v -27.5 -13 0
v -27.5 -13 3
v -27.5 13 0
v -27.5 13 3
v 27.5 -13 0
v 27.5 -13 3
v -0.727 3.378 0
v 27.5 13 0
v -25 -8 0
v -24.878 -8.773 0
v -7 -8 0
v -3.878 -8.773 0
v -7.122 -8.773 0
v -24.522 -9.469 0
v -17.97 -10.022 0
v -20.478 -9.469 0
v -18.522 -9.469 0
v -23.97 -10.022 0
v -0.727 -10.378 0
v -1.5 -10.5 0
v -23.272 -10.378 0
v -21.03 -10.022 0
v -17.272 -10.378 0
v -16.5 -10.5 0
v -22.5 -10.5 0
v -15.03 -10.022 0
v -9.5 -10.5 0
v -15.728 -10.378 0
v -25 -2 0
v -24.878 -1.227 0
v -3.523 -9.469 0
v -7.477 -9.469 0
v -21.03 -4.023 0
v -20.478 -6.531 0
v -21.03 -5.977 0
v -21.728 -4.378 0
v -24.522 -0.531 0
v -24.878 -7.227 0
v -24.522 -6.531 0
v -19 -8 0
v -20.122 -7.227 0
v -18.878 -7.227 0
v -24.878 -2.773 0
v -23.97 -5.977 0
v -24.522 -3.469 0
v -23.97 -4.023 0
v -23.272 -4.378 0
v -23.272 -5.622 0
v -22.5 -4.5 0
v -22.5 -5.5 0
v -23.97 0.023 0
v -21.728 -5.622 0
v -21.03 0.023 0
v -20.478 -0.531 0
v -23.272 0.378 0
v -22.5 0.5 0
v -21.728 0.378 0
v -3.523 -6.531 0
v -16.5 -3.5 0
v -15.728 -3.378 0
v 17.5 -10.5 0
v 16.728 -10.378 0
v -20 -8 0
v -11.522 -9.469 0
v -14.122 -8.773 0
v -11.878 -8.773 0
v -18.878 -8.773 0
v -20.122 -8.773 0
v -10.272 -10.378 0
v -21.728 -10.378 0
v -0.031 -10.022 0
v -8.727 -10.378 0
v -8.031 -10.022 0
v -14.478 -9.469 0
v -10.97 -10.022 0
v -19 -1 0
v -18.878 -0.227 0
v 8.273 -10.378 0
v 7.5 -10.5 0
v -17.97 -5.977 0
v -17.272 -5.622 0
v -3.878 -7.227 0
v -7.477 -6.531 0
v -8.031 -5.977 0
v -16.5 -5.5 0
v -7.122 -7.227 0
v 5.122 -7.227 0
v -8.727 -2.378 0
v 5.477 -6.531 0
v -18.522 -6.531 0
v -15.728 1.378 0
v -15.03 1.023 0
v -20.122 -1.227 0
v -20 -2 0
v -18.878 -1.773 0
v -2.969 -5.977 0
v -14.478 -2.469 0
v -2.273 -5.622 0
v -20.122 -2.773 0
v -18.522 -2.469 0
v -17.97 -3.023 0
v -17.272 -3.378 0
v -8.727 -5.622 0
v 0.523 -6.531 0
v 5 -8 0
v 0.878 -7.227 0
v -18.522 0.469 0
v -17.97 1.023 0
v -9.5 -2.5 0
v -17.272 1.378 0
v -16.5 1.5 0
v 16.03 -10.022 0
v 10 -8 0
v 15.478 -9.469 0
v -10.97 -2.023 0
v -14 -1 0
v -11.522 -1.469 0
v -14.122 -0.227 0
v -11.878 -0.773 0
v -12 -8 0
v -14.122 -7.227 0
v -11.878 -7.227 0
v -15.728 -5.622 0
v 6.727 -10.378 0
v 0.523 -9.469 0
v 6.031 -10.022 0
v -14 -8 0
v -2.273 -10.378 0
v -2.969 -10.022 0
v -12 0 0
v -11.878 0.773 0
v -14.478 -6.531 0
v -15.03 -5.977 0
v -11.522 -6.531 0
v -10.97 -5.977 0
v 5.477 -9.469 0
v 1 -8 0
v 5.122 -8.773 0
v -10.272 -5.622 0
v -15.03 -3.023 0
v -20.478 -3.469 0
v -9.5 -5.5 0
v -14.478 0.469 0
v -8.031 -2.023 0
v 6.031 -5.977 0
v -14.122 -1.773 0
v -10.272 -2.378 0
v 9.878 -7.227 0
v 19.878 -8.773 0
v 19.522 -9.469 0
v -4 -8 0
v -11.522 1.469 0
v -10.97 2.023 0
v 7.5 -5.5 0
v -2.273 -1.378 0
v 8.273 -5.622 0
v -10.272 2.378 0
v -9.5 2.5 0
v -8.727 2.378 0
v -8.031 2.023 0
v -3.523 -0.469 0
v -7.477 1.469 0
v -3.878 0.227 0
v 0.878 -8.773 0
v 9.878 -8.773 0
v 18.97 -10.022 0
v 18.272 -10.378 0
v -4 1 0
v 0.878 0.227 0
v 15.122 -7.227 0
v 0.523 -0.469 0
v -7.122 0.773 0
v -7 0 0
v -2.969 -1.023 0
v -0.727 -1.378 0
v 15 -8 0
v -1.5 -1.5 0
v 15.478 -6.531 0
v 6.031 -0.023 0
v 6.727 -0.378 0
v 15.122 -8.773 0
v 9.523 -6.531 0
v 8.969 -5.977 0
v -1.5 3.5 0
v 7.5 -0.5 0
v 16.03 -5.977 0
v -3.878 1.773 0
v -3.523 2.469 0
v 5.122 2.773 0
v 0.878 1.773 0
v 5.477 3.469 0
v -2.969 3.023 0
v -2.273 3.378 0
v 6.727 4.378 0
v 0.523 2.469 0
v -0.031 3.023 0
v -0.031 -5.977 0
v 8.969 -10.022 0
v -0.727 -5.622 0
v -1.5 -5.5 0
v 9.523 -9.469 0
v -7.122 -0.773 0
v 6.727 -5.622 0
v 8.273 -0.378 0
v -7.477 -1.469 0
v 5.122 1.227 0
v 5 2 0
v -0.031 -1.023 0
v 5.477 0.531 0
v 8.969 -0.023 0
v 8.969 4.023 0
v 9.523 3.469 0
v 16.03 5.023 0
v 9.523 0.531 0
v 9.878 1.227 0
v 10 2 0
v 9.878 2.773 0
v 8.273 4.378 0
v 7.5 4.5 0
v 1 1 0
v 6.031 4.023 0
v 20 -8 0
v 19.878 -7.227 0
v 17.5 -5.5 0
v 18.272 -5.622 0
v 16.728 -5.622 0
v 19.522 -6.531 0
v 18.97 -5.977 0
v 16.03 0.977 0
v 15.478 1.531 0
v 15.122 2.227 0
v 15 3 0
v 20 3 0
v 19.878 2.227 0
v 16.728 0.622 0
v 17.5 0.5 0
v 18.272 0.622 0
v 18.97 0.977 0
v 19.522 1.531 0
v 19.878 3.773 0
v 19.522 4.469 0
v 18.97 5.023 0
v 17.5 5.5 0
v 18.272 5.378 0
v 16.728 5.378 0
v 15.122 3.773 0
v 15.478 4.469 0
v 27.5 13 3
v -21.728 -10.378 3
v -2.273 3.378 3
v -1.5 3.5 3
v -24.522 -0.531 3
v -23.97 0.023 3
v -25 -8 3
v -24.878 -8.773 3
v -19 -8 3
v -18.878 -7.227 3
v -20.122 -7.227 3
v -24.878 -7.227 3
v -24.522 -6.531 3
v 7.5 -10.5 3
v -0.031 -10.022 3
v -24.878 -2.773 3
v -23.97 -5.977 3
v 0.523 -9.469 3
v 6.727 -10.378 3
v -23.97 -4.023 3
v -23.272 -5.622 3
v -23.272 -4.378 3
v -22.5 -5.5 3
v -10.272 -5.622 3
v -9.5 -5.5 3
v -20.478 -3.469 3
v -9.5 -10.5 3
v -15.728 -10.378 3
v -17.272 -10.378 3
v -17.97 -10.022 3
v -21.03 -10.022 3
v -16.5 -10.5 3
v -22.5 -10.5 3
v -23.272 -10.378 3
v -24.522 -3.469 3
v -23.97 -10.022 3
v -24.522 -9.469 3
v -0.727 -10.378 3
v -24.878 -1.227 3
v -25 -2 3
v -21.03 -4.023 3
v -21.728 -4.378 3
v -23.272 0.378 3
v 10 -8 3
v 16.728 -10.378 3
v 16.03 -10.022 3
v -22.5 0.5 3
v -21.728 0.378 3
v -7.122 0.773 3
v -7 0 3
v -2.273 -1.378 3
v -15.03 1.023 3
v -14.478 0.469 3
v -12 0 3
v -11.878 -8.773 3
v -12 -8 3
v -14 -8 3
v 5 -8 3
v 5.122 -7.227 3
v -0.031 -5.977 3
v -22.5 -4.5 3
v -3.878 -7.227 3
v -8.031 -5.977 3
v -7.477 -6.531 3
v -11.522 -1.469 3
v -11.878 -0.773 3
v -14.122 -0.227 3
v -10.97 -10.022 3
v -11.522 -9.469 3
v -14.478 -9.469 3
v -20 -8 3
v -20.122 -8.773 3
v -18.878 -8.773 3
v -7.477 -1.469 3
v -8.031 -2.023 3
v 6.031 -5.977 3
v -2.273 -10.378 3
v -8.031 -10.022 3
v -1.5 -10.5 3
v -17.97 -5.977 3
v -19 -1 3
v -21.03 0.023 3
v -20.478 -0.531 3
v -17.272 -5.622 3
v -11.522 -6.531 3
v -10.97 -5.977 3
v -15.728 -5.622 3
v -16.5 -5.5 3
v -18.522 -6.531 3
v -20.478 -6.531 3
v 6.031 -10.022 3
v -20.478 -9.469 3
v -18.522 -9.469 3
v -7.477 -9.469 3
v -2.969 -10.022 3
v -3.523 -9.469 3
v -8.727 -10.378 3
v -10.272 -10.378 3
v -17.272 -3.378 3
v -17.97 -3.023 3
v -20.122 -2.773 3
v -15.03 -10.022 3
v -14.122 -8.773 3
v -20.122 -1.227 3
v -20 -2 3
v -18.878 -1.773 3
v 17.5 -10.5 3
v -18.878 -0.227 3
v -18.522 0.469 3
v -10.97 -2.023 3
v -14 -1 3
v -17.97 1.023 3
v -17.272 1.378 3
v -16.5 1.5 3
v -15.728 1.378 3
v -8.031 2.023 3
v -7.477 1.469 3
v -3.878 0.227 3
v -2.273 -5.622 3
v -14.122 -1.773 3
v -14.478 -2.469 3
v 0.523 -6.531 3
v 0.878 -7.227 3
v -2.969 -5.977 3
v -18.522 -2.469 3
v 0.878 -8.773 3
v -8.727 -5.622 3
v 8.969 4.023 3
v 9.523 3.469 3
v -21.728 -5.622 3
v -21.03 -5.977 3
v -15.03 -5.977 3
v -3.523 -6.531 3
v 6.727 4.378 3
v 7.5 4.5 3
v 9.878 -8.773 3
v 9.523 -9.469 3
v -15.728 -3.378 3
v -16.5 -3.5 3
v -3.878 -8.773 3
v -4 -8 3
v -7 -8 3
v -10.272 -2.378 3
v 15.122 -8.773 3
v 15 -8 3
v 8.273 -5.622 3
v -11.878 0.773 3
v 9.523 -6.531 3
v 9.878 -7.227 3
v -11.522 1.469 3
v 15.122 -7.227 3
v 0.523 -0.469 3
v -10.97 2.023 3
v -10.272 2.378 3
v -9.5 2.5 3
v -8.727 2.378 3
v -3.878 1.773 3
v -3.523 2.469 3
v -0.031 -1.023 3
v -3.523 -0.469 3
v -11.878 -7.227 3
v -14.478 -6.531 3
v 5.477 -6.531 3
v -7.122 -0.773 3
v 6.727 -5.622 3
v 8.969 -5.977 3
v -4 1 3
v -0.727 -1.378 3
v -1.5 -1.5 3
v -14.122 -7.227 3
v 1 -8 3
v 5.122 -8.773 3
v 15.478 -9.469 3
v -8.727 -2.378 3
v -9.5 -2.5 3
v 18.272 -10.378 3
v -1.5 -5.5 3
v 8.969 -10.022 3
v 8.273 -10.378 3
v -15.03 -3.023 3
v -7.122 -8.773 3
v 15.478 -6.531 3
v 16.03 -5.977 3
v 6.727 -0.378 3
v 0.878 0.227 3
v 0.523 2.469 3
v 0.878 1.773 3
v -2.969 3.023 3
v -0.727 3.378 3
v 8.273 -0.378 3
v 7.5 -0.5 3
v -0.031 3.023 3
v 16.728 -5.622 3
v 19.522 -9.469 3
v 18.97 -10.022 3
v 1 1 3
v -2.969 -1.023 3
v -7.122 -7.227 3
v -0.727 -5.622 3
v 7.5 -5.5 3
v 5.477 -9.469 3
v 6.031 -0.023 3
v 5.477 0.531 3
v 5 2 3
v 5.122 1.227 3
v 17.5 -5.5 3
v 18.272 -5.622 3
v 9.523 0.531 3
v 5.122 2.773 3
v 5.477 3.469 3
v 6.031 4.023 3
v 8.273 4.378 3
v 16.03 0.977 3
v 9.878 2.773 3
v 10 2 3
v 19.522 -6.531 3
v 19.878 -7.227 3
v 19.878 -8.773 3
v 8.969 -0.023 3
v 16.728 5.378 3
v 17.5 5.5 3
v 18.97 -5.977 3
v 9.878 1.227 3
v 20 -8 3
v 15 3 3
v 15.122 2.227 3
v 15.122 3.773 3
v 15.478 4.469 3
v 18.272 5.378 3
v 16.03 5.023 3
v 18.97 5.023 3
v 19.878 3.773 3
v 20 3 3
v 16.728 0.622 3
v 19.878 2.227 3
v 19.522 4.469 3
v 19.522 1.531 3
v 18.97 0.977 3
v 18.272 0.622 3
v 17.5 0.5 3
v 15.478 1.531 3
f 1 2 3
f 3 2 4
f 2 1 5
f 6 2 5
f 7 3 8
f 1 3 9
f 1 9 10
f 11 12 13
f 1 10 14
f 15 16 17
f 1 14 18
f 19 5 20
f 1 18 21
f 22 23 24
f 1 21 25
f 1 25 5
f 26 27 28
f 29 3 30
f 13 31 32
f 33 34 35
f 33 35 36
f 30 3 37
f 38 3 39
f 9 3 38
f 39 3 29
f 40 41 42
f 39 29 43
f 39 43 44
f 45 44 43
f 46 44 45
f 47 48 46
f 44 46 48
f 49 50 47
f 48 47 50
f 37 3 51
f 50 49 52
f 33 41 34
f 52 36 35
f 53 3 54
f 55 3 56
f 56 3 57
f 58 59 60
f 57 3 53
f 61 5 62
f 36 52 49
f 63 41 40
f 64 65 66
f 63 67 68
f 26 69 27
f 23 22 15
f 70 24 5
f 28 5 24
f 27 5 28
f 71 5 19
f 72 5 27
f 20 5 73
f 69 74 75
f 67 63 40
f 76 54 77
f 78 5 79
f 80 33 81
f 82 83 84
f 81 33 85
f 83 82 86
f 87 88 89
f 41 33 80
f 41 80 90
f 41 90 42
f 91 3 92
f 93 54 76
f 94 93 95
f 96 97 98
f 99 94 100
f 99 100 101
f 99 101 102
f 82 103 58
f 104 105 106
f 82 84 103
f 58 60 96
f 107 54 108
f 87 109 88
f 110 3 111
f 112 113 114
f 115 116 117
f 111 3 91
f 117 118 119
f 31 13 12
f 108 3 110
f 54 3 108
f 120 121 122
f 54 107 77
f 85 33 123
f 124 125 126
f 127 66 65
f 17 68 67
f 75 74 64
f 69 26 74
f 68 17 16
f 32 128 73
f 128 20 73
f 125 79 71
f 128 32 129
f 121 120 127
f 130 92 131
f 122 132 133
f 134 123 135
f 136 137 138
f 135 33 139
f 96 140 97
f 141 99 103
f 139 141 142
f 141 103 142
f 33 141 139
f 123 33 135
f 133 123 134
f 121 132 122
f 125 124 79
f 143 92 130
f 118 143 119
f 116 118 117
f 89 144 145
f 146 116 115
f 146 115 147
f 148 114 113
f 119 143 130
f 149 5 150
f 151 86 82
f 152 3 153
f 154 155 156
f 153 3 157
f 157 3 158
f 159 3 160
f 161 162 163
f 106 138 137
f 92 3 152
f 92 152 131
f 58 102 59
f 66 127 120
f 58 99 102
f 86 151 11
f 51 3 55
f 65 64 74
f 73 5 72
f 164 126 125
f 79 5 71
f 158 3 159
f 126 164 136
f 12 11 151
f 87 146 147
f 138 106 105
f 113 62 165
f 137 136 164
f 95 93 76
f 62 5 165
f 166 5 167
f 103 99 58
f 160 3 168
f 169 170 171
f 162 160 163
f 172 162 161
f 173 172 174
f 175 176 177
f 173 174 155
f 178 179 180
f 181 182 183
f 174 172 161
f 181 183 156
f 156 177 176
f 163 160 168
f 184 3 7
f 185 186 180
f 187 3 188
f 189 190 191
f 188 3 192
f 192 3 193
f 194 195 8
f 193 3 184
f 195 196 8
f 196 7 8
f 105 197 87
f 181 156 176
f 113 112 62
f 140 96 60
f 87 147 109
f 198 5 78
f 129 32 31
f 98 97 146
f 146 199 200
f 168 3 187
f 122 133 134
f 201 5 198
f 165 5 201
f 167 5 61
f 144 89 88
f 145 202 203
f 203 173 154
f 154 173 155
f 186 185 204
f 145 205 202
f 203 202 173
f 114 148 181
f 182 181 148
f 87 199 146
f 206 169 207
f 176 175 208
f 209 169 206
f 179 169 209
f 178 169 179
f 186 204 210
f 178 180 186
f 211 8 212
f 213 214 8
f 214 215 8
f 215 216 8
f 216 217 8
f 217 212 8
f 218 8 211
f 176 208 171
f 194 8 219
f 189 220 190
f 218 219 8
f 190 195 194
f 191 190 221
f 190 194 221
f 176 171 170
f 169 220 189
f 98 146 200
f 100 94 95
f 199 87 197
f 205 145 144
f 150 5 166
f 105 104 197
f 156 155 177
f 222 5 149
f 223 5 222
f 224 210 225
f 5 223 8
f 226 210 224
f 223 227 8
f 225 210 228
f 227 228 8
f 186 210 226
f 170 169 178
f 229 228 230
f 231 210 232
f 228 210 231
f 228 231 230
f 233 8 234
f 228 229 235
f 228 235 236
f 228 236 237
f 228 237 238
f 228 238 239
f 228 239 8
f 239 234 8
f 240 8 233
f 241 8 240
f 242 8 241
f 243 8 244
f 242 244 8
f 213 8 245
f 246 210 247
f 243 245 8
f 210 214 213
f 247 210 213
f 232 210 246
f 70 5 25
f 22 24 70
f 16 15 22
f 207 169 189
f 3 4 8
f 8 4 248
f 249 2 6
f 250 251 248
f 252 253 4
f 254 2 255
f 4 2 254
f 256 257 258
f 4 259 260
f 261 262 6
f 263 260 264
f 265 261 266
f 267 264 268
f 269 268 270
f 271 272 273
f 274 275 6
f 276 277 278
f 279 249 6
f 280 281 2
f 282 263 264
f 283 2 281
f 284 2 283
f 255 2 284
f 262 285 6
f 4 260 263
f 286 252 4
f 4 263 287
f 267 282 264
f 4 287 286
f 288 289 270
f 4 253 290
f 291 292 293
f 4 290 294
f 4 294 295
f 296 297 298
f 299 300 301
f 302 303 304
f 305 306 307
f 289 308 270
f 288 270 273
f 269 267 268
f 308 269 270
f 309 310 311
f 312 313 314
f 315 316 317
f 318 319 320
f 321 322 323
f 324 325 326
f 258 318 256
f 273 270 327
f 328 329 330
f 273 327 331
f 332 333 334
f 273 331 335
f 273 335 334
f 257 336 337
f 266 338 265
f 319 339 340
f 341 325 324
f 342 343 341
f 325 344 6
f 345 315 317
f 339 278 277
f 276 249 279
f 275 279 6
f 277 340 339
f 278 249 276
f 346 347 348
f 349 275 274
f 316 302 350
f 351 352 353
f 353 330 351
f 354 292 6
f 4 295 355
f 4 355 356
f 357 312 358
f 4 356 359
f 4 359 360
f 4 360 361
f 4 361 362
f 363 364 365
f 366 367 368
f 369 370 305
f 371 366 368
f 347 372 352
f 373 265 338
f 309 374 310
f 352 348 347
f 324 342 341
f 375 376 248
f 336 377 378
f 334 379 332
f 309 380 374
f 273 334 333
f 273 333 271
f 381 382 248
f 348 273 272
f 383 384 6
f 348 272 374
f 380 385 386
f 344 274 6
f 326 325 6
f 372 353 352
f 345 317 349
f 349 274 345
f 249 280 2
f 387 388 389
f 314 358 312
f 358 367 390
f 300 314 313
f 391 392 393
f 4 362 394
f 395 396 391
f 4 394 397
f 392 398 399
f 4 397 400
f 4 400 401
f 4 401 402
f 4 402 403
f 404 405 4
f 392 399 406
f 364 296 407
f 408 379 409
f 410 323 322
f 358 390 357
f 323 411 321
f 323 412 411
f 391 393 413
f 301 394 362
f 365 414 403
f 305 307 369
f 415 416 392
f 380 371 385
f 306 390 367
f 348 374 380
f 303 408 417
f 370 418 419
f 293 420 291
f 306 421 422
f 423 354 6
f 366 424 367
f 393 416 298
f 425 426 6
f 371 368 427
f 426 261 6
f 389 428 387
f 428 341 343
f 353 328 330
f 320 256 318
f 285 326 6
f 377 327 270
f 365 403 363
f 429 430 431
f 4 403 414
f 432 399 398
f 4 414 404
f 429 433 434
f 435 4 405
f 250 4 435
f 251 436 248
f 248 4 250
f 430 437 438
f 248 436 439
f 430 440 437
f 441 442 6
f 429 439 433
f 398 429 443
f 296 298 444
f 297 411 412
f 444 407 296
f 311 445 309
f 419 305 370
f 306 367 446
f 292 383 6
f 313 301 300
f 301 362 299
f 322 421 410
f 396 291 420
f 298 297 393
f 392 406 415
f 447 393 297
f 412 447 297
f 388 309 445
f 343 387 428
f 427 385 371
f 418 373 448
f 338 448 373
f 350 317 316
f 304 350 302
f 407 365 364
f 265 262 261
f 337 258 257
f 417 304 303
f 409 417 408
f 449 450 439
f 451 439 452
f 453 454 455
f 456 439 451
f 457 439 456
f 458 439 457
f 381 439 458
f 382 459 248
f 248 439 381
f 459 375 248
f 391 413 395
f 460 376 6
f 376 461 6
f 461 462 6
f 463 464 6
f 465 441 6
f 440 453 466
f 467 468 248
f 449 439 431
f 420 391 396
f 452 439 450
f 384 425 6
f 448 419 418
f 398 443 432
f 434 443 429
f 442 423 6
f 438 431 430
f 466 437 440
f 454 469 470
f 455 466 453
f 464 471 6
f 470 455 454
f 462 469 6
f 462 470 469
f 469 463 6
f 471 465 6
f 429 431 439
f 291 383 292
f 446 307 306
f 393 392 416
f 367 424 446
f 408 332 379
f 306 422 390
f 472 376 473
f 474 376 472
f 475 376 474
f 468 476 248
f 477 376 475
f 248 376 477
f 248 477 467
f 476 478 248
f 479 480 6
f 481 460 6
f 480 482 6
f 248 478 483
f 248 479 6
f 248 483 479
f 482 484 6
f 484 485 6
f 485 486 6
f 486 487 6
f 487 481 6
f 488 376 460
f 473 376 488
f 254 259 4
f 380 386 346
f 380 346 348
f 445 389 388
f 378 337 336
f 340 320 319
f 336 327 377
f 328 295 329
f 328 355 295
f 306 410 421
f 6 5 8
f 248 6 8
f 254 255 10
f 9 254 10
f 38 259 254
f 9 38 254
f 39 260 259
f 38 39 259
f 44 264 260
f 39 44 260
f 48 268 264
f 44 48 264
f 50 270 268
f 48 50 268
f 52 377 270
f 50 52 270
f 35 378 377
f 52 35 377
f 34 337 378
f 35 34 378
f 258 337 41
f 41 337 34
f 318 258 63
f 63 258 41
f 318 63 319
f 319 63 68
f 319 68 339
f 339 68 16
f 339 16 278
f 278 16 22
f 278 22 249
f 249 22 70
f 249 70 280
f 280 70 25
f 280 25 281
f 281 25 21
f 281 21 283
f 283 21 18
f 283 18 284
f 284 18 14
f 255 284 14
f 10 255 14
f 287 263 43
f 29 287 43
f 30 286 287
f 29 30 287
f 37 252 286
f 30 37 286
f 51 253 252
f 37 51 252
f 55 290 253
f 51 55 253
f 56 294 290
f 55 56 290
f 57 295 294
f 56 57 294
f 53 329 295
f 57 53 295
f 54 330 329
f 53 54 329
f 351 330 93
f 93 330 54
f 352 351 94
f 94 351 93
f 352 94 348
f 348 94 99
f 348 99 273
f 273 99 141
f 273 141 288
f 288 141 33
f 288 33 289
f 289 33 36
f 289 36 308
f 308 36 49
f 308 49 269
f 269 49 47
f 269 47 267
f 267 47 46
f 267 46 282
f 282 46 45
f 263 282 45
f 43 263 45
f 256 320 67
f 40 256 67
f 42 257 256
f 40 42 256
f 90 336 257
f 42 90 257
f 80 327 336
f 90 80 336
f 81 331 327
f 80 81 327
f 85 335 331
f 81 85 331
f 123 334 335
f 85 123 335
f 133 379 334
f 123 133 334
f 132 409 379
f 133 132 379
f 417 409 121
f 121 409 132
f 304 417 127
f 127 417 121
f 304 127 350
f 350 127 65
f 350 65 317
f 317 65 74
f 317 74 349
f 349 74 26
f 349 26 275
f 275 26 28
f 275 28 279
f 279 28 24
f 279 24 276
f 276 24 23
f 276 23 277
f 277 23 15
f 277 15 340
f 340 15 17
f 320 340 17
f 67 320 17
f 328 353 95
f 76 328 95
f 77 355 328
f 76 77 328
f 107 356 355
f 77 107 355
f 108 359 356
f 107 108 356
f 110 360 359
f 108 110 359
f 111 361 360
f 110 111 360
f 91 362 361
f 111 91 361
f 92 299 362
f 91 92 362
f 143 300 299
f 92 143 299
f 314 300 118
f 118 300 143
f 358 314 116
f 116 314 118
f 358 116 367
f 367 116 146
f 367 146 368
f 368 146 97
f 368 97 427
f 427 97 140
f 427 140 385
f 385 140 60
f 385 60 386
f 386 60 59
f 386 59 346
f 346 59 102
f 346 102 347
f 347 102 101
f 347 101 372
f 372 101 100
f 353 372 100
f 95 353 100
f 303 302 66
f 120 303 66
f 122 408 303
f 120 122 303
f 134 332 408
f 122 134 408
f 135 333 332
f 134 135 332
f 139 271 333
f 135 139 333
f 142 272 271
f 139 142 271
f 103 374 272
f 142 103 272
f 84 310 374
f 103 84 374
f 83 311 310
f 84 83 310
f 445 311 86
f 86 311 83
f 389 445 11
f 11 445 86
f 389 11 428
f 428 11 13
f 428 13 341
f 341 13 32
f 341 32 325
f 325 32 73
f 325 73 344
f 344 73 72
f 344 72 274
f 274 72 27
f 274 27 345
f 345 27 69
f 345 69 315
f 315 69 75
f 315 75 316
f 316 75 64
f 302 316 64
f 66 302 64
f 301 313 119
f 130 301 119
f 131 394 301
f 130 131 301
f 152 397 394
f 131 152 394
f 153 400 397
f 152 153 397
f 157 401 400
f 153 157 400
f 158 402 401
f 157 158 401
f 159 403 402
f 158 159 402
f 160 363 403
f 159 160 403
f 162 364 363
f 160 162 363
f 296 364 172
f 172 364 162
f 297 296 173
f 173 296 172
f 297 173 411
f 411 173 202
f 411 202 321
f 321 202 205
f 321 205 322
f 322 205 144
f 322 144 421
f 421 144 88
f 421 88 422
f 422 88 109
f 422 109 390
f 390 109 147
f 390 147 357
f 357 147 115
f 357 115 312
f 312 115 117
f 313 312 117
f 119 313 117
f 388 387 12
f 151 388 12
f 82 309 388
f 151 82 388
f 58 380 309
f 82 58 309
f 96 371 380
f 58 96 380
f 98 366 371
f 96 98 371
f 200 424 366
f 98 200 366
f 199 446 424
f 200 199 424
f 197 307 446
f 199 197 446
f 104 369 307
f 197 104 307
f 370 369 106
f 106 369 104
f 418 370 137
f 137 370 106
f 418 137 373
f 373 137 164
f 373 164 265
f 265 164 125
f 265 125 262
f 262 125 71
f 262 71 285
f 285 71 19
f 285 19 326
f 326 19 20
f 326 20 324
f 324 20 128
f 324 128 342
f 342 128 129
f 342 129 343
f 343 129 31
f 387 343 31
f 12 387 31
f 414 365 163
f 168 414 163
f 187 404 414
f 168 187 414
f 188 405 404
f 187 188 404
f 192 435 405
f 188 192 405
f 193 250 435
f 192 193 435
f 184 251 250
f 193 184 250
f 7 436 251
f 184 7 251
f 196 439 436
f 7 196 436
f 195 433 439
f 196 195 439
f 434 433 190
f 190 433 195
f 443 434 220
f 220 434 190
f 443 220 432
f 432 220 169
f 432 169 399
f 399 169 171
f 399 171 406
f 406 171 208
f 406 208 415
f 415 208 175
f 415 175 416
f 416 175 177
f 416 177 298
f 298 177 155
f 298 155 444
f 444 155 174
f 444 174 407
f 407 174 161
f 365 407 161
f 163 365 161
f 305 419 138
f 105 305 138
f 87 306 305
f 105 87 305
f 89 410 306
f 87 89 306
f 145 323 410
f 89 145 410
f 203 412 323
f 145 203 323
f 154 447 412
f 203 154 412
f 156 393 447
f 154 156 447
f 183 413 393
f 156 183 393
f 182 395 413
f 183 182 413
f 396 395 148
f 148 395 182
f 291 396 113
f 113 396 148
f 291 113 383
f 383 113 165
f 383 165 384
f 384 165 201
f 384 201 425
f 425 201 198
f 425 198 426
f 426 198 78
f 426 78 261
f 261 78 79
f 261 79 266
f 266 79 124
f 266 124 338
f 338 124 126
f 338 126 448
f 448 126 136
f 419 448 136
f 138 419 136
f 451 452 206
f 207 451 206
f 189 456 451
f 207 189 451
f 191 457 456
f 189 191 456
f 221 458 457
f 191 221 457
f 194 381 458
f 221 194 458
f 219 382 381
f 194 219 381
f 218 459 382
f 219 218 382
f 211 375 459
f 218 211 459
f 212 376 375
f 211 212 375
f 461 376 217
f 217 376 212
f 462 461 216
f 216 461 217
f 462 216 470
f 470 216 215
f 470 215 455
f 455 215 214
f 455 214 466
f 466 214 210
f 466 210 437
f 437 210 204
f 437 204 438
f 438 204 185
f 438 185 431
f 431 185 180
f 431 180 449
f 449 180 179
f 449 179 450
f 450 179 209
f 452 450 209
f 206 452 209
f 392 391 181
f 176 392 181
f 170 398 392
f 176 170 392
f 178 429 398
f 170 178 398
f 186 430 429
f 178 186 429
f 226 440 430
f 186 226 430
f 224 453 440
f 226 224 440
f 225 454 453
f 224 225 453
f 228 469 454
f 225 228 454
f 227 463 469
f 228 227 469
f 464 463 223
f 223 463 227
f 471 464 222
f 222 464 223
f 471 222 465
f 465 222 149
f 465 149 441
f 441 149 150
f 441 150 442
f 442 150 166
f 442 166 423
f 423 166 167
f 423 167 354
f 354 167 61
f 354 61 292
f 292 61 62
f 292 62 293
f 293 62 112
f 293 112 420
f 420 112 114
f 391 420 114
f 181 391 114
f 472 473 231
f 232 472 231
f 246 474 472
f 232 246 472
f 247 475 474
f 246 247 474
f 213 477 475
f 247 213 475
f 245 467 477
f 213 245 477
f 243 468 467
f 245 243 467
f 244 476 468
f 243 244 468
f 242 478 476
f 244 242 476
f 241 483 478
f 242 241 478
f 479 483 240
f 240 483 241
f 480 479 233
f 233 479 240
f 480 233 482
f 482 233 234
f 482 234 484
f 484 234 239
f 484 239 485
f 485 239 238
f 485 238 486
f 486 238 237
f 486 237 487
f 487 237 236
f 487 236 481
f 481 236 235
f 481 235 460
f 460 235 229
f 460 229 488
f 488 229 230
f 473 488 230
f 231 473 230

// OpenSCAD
translate([-27.5,-13,0]) {
	difference() {
		cube([55,26,3]);
		for(i=[ [5, 5,0], [11, 5,0], [18, 5,0], [26, 5,0], [35, 5,0], [45, 5,0] ,
				[5,11,0], [11,12,0], [18,13,0], [26,14,0], [35,15,0], [45,16,0] ]) {
			translate(i)
				cylinder(r=2.5,h=3,$fn=20);
		}
	}
}
